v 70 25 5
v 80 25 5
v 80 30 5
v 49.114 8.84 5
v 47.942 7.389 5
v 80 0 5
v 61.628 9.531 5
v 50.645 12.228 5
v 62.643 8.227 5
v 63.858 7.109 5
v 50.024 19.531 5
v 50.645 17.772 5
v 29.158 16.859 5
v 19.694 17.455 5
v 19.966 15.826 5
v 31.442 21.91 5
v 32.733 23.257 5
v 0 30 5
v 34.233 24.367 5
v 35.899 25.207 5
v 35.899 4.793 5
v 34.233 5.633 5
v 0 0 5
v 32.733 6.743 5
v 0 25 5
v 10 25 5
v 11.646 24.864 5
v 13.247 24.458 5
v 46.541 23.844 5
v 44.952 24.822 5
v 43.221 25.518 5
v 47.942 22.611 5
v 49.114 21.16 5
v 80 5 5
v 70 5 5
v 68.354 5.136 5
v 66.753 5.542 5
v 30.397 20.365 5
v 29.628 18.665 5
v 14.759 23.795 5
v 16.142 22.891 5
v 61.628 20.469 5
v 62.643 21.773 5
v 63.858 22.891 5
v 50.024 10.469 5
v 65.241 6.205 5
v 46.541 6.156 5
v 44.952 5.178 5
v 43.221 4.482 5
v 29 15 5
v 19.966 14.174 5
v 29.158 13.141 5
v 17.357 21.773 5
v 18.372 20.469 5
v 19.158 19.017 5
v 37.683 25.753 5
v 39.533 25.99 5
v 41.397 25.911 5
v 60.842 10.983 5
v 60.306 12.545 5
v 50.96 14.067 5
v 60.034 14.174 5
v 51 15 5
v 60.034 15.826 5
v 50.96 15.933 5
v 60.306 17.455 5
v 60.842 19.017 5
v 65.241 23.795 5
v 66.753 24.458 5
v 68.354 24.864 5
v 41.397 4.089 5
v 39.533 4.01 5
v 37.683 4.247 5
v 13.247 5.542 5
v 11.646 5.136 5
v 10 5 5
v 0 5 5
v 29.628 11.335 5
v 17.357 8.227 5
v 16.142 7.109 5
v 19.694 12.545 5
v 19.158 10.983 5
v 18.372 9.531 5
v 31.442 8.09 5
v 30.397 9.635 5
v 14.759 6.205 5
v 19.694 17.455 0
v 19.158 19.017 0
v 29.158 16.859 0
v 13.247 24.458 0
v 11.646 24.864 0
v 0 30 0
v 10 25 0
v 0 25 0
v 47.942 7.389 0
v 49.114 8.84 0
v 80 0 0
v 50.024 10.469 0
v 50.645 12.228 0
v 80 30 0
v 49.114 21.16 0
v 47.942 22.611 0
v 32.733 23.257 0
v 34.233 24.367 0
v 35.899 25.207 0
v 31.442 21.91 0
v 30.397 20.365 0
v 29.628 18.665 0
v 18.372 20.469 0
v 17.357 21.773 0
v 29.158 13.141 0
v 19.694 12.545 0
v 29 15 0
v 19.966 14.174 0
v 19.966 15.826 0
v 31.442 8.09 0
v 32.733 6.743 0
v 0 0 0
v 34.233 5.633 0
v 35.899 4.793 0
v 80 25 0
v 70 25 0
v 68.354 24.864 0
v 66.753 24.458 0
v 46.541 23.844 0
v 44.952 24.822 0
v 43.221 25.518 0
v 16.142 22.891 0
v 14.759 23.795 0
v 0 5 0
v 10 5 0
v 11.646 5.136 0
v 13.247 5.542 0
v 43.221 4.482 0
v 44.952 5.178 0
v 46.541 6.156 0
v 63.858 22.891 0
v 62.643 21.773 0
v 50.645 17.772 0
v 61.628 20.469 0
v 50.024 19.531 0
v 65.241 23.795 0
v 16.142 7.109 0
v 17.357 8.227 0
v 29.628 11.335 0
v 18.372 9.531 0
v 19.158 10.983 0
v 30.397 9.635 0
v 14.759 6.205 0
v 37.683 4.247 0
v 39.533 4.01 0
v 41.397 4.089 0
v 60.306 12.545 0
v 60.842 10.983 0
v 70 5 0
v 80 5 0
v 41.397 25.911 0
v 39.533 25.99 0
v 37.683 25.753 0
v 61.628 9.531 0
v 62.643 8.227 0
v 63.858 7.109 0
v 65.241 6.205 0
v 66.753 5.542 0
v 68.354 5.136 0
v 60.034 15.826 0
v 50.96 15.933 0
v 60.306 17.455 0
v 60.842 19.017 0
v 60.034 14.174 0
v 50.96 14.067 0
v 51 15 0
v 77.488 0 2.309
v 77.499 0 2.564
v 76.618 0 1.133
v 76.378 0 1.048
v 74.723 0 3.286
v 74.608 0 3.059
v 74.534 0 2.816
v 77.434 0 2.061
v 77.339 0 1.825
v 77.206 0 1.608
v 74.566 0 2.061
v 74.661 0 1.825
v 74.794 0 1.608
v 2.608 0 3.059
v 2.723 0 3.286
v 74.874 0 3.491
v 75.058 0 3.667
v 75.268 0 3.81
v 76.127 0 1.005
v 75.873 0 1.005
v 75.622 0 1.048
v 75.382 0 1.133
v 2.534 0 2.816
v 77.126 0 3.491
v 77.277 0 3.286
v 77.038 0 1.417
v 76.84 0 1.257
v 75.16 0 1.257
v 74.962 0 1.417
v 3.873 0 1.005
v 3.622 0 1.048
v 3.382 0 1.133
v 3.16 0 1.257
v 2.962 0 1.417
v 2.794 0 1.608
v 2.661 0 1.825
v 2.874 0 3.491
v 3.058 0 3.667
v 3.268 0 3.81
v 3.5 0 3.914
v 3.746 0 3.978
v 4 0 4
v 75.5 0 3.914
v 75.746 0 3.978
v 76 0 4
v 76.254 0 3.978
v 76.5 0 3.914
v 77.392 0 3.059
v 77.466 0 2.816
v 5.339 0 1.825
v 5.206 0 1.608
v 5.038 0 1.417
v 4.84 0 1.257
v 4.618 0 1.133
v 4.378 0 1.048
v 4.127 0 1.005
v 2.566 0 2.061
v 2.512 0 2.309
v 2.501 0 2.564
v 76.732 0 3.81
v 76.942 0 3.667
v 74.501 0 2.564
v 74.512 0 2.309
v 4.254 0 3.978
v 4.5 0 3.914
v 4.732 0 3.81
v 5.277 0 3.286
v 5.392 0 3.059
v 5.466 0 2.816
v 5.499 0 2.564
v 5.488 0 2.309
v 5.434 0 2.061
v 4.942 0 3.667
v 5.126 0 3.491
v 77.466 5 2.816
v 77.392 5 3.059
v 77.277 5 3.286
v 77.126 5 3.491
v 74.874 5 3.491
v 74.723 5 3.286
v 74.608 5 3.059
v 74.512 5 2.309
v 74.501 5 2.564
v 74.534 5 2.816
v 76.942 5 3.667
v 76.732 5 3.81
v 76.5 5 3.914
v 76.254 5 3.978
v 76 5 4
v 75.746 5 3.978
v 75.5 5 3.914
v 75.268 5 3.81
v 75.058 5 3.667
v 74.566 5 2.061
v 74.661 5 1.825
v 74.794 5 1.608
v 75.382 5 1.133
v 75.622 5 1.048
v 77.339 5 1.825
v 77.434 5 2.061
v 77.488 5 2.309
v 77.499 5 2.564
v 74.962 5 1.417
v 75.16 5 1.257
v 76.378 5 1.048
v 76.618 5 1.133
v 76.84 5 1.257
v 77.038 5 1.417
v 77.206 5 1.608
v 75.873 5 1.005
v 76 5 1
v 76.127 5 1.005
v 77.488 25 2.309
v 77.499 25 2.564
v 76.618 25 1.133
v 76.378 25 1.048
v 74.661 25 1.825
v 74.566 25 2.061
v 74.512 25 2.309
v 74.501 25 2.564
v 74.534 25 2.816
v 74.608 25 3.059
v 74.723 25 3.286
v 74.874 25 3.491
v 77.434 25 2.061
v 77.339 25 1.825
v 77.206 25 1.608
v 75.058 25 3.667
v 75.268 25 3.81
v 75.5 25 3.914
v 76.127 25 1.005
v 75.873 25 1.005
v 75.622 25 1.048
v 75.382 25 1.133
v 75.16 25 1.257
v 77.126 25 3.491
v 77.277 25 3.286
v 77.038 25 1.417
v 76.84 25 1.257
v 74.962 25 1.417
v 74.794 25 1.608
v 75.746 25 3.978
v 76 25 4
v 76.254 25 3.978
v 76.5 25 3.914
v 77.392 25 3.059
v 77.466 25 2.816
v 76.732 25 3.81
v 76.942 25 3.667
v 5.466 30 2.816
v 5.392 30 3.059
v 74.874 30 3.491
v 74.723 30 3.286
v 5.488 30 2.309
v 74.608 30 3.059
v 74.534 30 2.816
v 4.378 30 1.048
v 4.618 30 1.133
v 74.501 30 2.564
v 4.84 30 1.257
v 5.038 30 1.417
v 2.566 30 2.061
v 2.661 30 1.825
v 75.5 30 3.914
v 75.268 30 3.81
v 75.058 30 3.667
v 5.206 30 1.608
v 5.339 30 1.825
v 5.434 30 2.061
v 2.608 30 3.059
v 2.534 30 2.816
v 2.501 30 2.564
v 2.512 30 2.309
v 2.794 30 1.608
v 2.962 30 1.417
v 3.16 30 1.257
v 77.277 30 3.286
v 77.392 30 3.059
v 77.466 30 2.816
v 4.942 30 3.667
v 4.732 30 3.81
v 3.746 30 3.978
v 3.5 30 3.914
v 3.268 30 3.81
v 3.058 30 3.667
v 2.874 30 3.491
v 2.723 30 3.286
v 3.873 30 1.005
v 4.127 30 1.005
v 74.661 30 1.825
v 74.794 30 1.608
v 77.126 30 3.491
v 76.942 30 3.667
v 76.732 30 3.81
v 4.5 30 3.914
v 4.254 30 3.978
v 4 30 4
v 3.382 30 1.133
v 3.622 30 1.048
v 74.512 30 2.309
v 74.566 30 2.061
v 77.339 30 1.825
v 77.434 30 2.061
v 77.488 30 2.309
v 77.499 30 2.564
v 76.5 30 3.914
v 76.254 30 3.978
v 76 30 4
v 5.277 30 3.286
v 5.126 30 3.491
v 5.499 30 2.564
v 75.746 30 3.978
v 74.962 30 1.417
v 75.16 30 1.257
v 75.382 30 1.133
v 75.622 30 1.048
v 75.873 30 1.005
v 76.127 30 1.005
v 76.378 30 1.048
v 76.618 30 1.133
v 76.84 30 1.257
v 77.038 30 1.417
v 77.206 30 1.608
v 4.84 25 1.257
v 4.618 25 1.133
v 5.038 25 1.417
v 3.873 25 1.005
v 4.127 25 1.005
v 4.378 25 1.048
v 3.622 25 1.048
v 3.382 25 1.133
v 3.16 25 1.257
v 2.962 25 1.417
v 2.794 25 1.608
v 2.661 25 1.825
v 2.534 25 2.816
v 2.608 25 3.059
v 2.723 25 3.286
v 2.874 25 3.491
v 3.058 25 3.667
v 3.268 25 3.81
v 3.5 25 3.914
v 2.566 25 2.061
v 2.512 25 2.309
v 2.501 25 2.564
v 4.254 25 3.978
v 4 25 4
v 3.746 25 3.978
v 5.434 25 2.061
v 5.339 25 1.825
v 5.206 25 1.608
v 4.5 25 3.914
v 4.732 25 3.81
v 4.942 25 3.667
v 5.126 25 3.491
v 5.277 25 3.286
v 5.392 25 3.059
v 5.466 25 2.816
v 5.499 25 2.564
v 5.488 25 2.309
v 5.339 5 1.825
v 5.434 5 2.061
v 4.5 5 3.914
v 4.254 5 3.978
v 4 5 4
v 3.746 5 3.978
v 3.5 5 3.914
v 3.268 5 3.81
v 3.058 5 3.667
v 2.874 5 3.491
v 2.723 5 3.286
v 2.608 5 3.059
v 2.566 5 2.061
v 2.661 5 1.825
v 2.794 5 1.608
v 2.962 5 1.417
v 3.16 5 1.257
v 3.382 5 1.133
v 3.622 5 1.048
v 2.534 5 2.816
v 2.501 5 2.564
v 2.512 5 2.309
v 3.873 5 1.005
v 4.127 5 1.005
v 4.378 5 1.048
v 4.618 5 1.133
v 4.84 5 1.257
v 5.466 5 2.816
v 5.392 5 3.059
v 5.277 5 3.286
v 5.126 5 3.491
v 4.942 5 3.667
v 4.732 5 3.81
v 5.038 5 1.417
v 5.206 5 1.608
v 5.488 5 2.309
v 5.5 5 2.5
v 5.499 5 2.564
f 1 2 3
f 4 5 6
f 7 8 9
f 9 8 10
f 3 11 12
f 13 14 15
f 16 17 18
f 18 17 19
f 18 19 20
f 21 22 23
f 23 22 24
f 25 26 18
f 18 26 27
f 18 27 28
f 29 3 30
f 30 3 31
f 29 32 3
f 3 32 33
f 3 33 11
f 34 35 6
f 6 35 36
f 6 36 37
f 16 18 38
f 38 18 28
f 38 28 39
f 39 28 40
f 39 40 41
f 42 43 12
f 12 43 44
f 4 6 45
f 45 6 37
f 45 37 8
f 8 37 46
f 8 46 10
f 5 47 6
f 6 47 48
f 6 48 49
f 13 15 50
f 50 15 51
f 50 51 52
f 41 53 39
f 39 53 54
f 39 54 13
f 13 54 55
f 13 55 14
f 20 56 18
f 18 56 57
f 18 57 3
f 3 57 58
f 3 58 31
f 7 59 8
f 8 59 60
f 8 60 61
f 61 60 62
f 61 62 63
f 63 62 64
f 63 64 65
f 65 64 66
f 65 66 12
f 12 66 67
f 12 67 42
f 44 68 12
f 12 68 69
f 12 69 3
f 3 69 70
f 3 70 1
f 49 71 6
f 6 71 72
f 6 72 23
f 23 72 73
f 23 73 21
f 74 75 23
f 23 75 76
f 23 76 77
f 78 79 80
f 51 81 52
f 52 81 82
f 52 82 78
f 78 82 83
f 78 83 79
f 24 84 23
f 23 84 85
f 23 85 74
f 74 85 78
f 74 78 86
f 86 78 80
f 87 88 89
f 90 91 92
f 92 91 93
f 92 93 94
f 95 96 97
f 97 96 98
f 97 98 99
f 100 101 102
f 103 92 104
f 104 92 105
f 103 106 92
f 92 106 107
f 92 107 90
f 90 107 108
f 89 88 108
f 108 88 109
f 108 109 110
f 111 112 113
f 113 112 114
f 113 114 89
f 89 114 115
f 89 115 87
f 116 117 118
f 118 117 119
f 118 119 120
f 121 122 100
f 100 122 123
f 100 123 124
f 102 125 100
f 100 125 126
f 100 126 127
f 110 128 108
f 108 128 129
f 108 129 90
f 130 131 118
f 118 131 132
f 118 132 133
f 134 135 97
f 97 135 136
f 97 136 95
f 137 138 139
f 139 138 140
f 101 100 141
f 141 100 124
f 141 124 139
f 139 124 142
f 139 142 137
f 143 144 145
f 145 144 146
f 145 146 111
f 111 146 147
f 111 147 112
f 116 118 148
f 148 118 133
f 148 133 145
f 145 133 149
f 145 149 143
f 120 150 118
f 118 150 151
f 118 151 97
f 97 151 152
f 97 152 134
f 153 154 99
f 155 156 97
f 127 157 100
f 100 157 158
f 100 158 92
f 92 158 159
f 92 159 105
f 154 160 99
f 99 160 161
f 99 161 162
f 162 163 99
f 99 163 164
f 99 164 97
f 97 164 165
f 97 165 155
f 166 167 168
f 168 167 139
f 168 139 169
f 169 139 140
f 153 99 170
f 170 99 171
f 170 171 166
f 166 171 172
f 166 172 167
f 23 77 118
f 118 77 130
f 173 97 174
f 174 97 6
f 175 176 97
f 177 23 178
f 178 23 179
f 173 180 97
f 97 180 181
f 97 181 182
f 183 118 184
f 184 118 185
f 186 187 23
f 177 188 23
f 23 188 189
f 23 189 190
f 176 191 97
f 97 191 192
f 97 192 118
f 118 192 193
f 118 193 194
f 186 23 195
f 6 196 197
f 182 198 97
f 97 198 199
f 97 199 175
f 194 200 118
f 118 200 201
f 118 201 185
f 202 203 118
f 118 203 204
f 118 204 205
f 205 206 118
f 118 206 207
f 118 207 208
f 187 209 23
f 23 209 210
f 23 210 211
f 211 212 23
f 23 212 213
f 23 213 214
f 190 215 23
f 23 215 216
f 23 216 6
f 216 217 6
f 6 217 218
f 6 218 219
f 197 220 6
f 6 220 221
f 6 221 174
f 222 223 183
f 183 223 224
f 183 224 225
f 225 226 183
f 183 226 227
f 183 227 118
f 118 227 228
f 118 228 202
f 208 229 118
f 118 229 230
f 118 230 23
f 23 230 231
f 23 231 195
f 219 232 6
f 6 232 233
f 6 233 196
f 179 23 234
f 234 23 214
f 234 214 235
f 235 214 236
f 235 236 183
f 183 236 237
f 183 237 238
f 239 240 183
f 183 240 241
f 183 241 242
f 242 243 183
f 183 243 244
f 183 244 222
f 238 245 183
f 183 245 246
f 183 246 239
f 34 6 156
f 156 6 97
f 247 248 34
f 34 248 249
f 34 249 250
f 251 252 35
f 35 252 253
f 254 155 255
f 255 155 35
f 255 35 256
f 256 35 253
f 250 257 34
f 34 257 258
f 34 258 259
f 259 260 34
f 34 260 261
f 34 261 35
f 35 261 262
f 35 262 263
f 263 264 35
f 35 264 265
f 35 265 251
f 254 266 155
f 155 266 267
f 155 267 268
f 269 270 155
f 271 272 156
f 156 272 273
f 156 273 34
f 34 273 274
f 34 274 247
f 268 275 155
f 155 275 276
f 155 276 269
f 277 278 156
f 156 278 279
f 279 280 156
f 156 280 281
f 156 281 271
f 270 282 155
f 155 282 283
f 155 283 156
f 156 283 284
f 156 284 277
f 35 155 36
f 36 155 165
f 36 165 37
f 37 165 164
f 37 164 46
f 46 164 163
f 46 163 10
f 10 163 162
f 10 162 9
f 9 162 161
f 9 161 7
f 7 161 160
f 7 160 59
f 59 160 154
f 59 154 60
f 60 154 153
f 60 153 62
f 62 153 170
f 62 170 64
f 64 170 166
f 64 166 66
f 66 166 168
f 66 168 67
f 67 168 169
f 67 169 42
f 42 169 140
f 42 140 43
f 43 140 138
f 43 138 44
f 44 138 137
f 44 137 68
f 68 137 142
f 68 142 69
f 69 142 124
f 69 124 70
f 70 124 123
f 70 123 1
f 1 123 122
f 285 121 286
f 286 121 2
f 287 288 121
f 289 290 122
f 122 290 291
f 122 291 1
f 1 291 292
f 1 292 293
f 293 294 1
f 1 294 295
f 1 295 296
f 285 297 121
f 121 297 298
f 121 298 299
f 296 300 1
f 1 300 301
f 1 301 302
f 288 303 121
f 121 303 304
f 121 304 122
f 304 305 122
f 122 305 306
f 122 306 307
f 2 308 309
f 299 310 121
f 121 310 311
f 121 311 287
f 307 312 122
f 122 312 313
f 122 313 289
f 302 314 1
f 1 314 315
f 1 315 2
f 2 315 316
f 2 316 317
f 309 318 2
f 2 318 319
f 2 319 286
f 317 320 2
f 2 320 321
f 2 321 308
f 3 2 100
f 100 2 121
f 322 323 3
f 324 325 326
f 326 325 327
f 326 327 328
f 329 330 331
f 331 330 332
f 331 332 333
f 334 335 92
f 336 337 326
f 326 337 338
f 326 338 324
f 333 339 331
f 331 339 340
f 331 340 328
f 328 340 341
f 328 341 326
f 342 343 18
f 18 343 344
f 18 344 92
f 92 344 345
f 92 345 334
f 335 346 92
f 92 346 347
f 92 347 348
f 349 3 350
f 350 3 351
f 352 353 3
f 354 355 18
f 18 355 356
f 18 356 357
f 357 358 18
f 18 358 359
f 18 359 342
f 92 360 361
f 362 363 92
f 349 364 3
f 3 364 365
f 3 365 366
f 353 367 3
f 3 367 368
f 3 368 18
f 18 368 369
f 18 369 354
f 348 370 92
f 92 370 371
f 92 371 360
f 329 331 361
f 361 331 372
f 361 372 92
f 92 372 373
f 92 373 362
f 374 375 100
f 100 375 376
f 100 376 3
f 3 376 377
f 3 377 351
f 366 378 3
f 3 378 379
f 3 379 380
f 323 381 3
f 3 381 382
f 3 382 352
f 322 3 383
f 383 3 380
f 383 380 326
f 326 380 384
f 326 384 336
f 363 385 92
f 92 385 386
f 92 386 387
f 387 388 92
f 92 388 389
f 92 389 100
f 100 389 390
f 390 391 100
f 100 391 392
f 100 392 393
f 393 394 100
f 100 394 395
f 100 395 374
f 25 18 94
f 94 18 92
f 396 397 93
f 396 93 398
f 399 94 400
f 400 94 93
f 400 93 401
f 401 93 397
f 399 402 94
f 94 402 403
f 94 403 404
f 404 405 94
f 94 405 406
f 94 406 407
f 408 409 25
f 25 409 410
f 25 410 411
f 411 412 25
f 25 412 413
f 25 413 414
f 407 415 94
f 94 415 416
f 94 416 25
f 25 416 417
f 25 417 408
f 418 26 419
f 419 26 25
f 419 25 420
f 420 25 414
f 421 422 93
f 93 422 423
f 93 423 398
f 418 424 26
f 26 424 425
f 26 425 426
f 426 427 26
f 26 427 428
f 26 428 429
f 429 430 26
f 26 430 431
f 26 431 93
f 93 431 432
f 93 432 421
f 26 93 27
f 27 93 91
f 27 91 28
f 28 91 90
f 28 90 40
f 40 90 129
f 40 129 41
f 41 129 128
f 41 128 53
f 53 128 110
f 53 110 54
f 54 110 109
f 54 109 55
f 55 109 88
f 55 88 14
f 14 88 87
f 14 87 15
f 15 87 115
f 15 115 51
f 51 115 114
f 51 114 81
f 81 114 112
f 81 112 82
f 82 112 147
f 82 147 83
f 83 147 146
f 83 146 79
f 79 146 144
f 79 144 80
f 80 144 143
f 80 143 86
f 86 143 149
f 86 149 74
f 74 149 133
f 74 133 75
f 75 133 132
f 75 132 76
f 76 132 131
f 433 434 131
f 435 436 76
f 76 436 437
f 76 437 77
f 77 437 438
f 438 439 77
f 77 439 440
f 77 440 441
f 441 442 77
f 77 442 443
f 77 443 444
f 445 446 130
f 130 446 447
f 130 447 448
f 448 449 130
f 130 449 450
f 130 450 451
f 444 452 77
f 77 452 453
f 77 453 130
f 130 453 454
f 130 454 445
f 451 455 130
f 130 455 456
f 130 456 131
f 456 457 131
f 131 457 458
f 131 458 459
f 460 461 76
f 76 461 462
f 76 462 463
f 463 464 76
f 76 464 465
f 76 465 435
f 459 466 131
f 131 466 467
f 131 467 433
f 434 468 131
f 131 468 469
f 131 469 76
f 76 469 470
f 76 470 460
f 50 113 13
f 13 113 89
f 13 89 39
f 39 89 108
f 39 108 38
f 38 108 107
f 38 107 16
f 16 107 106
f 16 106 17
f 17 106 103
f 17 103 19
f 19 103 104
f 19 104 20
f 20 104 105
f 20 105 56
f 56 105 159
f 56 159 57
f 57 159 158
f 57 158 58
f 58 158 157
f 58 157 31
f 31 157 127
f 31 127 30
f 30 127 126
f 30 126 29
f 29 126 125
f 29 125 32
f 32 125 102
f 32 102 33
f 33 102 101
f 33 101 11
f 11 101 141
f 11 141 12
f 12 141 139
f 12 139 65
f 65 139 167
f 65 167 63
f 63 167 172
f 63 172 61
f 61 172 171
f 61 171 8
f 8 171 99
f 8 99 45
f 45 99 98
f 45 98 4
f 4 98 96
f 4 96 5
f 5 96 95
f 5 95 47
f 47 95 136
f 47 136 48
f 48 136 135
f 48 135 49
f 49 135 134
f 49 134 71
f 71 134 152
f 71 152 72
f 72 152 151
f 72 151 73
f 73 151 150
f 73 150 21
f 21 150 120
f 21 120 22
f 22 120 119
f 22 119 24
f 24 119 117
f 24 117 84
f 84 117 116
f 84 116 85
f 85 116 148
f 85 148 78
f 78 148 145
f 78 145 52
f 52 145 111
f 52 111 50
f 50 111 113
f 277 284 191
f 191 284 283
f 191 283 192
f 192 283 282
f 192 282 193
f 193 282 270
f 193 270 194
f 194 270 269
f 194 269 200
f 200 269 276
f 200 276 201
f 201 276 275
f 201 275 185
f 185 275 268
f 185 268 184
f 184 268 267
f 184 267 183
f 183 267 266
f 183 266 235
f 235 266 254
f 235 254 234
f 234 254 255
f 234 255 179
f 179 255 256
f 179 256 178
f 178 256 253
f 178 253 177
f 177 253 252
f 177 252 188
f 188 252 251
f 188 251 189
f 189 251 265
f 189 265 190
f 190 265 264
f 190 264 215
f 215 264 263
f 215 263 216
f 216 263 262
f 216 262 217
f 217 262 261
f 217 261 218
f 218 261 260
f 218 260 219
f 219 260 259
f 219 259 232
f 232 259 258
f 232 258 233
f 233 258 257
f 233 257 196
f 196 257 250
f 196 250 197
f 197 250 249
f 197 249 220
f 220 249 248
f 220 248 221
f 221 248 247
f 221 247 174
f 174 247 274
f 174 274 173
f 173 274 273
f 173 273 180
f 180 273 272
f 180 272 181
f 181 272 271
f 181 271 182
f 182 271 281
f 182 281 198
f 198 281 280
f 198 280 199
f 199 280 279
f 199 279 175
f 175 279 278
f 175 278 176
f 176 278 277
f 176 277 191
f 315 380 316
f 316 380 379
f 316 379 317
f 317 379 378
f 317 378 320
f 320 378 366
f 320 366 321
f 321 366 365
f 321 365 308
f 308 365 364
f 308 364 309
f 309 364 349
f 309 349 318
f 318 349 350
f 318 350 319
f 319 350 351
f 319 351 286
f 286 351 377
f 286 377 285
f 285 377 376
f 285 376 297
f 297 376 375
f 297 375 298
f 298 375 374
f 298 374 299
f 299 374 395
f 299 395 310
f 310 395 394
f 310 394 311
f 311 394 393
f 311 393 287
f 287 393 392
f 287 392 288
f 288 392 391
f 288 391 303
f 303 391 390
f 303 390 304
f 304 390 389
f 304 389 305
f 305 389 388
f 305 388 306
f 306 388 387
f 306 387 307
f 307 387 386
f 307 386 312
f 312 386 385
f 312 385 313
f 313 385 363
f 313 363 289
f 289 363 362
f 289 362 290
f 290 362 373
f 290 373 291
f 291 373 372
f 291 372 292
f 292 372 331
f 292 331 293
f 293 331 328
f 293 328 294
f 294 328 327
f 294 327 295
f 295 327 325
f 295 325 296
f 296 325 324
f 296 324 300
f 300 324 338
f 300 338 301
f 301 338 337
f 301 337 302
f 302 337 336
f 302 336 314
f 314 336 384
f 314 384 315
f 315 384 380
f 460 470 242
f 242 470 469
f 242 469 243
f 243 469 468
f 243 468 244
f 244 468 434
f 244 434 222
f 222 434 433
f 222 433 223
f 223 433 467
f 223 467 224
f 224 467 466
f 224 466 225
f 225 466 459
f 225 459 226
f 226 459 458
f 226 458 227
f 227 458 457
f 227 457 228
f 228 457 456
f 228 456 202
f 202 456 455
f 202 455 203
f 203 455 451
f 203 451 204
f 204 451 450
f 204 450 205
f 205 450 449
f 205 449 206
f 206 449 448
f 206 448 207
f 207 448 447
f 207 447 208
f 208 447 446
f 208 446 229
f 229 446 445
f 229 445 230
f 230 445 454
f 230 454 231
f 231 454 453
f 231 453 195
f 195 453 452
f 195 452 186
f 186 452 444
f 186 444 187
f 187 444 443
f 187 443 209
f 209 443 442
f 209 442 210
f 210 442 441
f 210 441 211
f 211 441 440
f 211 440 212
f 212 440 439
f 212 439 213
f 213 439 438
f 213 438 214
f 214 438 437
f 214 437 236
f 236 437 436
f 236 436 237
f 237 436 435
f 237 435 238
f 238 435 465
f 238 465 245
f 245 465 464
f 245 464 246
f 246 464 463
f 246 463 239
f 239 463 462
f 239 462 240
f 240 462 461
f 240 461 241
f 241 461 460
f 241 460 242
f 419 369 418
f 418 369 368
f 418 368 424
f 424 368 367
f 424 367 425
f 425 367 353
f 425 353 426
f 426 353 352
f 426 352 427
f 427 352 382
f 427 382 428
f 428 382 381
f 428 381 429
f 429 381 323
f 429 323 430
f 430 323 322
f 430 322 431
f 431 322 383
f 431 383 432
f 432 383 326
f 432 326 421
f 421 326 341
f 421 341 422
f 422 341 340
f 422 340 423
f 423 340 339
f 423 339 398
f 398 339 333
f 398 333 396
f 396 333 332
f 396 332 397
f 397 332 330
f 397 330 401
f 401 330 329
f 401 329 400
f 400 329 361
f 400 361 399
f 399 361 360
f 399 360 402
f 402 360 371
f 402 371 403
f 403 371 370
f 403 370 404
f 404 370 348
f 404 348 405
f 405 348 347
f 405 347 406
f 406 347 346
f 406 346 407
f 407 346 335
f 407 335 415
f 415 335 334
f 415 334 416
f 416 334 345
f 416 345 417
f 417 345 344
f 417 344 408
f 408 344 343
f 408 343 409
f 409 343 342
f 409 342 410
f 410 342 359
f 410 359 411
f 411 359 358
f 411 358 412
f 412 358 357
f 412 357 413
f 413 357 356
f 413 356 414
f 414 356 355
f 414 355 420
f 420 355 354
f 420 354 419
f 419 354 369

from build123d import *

# Parameters (mm, degrees)
ESQUISSE1_R        = 11
BOSS_EXTRU_1_DEPTH = 5
D_GAGEMENT_M31_D   = 3


with BuildPart() as part:
    # Esquisse1 → Boss.-Extru.1 (new body)
    with BuildSketch(Plane.XY):
        with BuildLine():
            Line((0, 0), (80, 0))
            Line((80, 0), (80, 5))
            Line((80, 5), (70, 5))
            ThreePointArc((70, 5), (60, 15), (70, 25))
            Line((70, 25), (80, 25))
            Line((80, 25), (80, 30))
            Line((80, 30), (0, 30))
            Line((0, 30), (0, 25))
            Line((0, 25), (10, 25))
            ThreePointArc((10, 25), (20, 15), (10, 5))
            Line((10, 5), (0, 5))
            Line((0, 5), (0, 0))
        make_face()
        with Locations((40, 15)):
            Circle(ESQUISSE1_R, mode=Mode.SUBTRACT)
    extrude(amount=BOSS_EXTRU_1_DEPTH)

    # Dégagement M31 (through all)
    with Locations(Plane(origin=(0, 30, 0), x_dir=(1, 0, 0), z_dir=(0, 1, 0))):
        with Locations((4, -2.5), (76, -2.5)):
            Hole(D_GAGEMENT_M31_D / 2)


solid = part.part
